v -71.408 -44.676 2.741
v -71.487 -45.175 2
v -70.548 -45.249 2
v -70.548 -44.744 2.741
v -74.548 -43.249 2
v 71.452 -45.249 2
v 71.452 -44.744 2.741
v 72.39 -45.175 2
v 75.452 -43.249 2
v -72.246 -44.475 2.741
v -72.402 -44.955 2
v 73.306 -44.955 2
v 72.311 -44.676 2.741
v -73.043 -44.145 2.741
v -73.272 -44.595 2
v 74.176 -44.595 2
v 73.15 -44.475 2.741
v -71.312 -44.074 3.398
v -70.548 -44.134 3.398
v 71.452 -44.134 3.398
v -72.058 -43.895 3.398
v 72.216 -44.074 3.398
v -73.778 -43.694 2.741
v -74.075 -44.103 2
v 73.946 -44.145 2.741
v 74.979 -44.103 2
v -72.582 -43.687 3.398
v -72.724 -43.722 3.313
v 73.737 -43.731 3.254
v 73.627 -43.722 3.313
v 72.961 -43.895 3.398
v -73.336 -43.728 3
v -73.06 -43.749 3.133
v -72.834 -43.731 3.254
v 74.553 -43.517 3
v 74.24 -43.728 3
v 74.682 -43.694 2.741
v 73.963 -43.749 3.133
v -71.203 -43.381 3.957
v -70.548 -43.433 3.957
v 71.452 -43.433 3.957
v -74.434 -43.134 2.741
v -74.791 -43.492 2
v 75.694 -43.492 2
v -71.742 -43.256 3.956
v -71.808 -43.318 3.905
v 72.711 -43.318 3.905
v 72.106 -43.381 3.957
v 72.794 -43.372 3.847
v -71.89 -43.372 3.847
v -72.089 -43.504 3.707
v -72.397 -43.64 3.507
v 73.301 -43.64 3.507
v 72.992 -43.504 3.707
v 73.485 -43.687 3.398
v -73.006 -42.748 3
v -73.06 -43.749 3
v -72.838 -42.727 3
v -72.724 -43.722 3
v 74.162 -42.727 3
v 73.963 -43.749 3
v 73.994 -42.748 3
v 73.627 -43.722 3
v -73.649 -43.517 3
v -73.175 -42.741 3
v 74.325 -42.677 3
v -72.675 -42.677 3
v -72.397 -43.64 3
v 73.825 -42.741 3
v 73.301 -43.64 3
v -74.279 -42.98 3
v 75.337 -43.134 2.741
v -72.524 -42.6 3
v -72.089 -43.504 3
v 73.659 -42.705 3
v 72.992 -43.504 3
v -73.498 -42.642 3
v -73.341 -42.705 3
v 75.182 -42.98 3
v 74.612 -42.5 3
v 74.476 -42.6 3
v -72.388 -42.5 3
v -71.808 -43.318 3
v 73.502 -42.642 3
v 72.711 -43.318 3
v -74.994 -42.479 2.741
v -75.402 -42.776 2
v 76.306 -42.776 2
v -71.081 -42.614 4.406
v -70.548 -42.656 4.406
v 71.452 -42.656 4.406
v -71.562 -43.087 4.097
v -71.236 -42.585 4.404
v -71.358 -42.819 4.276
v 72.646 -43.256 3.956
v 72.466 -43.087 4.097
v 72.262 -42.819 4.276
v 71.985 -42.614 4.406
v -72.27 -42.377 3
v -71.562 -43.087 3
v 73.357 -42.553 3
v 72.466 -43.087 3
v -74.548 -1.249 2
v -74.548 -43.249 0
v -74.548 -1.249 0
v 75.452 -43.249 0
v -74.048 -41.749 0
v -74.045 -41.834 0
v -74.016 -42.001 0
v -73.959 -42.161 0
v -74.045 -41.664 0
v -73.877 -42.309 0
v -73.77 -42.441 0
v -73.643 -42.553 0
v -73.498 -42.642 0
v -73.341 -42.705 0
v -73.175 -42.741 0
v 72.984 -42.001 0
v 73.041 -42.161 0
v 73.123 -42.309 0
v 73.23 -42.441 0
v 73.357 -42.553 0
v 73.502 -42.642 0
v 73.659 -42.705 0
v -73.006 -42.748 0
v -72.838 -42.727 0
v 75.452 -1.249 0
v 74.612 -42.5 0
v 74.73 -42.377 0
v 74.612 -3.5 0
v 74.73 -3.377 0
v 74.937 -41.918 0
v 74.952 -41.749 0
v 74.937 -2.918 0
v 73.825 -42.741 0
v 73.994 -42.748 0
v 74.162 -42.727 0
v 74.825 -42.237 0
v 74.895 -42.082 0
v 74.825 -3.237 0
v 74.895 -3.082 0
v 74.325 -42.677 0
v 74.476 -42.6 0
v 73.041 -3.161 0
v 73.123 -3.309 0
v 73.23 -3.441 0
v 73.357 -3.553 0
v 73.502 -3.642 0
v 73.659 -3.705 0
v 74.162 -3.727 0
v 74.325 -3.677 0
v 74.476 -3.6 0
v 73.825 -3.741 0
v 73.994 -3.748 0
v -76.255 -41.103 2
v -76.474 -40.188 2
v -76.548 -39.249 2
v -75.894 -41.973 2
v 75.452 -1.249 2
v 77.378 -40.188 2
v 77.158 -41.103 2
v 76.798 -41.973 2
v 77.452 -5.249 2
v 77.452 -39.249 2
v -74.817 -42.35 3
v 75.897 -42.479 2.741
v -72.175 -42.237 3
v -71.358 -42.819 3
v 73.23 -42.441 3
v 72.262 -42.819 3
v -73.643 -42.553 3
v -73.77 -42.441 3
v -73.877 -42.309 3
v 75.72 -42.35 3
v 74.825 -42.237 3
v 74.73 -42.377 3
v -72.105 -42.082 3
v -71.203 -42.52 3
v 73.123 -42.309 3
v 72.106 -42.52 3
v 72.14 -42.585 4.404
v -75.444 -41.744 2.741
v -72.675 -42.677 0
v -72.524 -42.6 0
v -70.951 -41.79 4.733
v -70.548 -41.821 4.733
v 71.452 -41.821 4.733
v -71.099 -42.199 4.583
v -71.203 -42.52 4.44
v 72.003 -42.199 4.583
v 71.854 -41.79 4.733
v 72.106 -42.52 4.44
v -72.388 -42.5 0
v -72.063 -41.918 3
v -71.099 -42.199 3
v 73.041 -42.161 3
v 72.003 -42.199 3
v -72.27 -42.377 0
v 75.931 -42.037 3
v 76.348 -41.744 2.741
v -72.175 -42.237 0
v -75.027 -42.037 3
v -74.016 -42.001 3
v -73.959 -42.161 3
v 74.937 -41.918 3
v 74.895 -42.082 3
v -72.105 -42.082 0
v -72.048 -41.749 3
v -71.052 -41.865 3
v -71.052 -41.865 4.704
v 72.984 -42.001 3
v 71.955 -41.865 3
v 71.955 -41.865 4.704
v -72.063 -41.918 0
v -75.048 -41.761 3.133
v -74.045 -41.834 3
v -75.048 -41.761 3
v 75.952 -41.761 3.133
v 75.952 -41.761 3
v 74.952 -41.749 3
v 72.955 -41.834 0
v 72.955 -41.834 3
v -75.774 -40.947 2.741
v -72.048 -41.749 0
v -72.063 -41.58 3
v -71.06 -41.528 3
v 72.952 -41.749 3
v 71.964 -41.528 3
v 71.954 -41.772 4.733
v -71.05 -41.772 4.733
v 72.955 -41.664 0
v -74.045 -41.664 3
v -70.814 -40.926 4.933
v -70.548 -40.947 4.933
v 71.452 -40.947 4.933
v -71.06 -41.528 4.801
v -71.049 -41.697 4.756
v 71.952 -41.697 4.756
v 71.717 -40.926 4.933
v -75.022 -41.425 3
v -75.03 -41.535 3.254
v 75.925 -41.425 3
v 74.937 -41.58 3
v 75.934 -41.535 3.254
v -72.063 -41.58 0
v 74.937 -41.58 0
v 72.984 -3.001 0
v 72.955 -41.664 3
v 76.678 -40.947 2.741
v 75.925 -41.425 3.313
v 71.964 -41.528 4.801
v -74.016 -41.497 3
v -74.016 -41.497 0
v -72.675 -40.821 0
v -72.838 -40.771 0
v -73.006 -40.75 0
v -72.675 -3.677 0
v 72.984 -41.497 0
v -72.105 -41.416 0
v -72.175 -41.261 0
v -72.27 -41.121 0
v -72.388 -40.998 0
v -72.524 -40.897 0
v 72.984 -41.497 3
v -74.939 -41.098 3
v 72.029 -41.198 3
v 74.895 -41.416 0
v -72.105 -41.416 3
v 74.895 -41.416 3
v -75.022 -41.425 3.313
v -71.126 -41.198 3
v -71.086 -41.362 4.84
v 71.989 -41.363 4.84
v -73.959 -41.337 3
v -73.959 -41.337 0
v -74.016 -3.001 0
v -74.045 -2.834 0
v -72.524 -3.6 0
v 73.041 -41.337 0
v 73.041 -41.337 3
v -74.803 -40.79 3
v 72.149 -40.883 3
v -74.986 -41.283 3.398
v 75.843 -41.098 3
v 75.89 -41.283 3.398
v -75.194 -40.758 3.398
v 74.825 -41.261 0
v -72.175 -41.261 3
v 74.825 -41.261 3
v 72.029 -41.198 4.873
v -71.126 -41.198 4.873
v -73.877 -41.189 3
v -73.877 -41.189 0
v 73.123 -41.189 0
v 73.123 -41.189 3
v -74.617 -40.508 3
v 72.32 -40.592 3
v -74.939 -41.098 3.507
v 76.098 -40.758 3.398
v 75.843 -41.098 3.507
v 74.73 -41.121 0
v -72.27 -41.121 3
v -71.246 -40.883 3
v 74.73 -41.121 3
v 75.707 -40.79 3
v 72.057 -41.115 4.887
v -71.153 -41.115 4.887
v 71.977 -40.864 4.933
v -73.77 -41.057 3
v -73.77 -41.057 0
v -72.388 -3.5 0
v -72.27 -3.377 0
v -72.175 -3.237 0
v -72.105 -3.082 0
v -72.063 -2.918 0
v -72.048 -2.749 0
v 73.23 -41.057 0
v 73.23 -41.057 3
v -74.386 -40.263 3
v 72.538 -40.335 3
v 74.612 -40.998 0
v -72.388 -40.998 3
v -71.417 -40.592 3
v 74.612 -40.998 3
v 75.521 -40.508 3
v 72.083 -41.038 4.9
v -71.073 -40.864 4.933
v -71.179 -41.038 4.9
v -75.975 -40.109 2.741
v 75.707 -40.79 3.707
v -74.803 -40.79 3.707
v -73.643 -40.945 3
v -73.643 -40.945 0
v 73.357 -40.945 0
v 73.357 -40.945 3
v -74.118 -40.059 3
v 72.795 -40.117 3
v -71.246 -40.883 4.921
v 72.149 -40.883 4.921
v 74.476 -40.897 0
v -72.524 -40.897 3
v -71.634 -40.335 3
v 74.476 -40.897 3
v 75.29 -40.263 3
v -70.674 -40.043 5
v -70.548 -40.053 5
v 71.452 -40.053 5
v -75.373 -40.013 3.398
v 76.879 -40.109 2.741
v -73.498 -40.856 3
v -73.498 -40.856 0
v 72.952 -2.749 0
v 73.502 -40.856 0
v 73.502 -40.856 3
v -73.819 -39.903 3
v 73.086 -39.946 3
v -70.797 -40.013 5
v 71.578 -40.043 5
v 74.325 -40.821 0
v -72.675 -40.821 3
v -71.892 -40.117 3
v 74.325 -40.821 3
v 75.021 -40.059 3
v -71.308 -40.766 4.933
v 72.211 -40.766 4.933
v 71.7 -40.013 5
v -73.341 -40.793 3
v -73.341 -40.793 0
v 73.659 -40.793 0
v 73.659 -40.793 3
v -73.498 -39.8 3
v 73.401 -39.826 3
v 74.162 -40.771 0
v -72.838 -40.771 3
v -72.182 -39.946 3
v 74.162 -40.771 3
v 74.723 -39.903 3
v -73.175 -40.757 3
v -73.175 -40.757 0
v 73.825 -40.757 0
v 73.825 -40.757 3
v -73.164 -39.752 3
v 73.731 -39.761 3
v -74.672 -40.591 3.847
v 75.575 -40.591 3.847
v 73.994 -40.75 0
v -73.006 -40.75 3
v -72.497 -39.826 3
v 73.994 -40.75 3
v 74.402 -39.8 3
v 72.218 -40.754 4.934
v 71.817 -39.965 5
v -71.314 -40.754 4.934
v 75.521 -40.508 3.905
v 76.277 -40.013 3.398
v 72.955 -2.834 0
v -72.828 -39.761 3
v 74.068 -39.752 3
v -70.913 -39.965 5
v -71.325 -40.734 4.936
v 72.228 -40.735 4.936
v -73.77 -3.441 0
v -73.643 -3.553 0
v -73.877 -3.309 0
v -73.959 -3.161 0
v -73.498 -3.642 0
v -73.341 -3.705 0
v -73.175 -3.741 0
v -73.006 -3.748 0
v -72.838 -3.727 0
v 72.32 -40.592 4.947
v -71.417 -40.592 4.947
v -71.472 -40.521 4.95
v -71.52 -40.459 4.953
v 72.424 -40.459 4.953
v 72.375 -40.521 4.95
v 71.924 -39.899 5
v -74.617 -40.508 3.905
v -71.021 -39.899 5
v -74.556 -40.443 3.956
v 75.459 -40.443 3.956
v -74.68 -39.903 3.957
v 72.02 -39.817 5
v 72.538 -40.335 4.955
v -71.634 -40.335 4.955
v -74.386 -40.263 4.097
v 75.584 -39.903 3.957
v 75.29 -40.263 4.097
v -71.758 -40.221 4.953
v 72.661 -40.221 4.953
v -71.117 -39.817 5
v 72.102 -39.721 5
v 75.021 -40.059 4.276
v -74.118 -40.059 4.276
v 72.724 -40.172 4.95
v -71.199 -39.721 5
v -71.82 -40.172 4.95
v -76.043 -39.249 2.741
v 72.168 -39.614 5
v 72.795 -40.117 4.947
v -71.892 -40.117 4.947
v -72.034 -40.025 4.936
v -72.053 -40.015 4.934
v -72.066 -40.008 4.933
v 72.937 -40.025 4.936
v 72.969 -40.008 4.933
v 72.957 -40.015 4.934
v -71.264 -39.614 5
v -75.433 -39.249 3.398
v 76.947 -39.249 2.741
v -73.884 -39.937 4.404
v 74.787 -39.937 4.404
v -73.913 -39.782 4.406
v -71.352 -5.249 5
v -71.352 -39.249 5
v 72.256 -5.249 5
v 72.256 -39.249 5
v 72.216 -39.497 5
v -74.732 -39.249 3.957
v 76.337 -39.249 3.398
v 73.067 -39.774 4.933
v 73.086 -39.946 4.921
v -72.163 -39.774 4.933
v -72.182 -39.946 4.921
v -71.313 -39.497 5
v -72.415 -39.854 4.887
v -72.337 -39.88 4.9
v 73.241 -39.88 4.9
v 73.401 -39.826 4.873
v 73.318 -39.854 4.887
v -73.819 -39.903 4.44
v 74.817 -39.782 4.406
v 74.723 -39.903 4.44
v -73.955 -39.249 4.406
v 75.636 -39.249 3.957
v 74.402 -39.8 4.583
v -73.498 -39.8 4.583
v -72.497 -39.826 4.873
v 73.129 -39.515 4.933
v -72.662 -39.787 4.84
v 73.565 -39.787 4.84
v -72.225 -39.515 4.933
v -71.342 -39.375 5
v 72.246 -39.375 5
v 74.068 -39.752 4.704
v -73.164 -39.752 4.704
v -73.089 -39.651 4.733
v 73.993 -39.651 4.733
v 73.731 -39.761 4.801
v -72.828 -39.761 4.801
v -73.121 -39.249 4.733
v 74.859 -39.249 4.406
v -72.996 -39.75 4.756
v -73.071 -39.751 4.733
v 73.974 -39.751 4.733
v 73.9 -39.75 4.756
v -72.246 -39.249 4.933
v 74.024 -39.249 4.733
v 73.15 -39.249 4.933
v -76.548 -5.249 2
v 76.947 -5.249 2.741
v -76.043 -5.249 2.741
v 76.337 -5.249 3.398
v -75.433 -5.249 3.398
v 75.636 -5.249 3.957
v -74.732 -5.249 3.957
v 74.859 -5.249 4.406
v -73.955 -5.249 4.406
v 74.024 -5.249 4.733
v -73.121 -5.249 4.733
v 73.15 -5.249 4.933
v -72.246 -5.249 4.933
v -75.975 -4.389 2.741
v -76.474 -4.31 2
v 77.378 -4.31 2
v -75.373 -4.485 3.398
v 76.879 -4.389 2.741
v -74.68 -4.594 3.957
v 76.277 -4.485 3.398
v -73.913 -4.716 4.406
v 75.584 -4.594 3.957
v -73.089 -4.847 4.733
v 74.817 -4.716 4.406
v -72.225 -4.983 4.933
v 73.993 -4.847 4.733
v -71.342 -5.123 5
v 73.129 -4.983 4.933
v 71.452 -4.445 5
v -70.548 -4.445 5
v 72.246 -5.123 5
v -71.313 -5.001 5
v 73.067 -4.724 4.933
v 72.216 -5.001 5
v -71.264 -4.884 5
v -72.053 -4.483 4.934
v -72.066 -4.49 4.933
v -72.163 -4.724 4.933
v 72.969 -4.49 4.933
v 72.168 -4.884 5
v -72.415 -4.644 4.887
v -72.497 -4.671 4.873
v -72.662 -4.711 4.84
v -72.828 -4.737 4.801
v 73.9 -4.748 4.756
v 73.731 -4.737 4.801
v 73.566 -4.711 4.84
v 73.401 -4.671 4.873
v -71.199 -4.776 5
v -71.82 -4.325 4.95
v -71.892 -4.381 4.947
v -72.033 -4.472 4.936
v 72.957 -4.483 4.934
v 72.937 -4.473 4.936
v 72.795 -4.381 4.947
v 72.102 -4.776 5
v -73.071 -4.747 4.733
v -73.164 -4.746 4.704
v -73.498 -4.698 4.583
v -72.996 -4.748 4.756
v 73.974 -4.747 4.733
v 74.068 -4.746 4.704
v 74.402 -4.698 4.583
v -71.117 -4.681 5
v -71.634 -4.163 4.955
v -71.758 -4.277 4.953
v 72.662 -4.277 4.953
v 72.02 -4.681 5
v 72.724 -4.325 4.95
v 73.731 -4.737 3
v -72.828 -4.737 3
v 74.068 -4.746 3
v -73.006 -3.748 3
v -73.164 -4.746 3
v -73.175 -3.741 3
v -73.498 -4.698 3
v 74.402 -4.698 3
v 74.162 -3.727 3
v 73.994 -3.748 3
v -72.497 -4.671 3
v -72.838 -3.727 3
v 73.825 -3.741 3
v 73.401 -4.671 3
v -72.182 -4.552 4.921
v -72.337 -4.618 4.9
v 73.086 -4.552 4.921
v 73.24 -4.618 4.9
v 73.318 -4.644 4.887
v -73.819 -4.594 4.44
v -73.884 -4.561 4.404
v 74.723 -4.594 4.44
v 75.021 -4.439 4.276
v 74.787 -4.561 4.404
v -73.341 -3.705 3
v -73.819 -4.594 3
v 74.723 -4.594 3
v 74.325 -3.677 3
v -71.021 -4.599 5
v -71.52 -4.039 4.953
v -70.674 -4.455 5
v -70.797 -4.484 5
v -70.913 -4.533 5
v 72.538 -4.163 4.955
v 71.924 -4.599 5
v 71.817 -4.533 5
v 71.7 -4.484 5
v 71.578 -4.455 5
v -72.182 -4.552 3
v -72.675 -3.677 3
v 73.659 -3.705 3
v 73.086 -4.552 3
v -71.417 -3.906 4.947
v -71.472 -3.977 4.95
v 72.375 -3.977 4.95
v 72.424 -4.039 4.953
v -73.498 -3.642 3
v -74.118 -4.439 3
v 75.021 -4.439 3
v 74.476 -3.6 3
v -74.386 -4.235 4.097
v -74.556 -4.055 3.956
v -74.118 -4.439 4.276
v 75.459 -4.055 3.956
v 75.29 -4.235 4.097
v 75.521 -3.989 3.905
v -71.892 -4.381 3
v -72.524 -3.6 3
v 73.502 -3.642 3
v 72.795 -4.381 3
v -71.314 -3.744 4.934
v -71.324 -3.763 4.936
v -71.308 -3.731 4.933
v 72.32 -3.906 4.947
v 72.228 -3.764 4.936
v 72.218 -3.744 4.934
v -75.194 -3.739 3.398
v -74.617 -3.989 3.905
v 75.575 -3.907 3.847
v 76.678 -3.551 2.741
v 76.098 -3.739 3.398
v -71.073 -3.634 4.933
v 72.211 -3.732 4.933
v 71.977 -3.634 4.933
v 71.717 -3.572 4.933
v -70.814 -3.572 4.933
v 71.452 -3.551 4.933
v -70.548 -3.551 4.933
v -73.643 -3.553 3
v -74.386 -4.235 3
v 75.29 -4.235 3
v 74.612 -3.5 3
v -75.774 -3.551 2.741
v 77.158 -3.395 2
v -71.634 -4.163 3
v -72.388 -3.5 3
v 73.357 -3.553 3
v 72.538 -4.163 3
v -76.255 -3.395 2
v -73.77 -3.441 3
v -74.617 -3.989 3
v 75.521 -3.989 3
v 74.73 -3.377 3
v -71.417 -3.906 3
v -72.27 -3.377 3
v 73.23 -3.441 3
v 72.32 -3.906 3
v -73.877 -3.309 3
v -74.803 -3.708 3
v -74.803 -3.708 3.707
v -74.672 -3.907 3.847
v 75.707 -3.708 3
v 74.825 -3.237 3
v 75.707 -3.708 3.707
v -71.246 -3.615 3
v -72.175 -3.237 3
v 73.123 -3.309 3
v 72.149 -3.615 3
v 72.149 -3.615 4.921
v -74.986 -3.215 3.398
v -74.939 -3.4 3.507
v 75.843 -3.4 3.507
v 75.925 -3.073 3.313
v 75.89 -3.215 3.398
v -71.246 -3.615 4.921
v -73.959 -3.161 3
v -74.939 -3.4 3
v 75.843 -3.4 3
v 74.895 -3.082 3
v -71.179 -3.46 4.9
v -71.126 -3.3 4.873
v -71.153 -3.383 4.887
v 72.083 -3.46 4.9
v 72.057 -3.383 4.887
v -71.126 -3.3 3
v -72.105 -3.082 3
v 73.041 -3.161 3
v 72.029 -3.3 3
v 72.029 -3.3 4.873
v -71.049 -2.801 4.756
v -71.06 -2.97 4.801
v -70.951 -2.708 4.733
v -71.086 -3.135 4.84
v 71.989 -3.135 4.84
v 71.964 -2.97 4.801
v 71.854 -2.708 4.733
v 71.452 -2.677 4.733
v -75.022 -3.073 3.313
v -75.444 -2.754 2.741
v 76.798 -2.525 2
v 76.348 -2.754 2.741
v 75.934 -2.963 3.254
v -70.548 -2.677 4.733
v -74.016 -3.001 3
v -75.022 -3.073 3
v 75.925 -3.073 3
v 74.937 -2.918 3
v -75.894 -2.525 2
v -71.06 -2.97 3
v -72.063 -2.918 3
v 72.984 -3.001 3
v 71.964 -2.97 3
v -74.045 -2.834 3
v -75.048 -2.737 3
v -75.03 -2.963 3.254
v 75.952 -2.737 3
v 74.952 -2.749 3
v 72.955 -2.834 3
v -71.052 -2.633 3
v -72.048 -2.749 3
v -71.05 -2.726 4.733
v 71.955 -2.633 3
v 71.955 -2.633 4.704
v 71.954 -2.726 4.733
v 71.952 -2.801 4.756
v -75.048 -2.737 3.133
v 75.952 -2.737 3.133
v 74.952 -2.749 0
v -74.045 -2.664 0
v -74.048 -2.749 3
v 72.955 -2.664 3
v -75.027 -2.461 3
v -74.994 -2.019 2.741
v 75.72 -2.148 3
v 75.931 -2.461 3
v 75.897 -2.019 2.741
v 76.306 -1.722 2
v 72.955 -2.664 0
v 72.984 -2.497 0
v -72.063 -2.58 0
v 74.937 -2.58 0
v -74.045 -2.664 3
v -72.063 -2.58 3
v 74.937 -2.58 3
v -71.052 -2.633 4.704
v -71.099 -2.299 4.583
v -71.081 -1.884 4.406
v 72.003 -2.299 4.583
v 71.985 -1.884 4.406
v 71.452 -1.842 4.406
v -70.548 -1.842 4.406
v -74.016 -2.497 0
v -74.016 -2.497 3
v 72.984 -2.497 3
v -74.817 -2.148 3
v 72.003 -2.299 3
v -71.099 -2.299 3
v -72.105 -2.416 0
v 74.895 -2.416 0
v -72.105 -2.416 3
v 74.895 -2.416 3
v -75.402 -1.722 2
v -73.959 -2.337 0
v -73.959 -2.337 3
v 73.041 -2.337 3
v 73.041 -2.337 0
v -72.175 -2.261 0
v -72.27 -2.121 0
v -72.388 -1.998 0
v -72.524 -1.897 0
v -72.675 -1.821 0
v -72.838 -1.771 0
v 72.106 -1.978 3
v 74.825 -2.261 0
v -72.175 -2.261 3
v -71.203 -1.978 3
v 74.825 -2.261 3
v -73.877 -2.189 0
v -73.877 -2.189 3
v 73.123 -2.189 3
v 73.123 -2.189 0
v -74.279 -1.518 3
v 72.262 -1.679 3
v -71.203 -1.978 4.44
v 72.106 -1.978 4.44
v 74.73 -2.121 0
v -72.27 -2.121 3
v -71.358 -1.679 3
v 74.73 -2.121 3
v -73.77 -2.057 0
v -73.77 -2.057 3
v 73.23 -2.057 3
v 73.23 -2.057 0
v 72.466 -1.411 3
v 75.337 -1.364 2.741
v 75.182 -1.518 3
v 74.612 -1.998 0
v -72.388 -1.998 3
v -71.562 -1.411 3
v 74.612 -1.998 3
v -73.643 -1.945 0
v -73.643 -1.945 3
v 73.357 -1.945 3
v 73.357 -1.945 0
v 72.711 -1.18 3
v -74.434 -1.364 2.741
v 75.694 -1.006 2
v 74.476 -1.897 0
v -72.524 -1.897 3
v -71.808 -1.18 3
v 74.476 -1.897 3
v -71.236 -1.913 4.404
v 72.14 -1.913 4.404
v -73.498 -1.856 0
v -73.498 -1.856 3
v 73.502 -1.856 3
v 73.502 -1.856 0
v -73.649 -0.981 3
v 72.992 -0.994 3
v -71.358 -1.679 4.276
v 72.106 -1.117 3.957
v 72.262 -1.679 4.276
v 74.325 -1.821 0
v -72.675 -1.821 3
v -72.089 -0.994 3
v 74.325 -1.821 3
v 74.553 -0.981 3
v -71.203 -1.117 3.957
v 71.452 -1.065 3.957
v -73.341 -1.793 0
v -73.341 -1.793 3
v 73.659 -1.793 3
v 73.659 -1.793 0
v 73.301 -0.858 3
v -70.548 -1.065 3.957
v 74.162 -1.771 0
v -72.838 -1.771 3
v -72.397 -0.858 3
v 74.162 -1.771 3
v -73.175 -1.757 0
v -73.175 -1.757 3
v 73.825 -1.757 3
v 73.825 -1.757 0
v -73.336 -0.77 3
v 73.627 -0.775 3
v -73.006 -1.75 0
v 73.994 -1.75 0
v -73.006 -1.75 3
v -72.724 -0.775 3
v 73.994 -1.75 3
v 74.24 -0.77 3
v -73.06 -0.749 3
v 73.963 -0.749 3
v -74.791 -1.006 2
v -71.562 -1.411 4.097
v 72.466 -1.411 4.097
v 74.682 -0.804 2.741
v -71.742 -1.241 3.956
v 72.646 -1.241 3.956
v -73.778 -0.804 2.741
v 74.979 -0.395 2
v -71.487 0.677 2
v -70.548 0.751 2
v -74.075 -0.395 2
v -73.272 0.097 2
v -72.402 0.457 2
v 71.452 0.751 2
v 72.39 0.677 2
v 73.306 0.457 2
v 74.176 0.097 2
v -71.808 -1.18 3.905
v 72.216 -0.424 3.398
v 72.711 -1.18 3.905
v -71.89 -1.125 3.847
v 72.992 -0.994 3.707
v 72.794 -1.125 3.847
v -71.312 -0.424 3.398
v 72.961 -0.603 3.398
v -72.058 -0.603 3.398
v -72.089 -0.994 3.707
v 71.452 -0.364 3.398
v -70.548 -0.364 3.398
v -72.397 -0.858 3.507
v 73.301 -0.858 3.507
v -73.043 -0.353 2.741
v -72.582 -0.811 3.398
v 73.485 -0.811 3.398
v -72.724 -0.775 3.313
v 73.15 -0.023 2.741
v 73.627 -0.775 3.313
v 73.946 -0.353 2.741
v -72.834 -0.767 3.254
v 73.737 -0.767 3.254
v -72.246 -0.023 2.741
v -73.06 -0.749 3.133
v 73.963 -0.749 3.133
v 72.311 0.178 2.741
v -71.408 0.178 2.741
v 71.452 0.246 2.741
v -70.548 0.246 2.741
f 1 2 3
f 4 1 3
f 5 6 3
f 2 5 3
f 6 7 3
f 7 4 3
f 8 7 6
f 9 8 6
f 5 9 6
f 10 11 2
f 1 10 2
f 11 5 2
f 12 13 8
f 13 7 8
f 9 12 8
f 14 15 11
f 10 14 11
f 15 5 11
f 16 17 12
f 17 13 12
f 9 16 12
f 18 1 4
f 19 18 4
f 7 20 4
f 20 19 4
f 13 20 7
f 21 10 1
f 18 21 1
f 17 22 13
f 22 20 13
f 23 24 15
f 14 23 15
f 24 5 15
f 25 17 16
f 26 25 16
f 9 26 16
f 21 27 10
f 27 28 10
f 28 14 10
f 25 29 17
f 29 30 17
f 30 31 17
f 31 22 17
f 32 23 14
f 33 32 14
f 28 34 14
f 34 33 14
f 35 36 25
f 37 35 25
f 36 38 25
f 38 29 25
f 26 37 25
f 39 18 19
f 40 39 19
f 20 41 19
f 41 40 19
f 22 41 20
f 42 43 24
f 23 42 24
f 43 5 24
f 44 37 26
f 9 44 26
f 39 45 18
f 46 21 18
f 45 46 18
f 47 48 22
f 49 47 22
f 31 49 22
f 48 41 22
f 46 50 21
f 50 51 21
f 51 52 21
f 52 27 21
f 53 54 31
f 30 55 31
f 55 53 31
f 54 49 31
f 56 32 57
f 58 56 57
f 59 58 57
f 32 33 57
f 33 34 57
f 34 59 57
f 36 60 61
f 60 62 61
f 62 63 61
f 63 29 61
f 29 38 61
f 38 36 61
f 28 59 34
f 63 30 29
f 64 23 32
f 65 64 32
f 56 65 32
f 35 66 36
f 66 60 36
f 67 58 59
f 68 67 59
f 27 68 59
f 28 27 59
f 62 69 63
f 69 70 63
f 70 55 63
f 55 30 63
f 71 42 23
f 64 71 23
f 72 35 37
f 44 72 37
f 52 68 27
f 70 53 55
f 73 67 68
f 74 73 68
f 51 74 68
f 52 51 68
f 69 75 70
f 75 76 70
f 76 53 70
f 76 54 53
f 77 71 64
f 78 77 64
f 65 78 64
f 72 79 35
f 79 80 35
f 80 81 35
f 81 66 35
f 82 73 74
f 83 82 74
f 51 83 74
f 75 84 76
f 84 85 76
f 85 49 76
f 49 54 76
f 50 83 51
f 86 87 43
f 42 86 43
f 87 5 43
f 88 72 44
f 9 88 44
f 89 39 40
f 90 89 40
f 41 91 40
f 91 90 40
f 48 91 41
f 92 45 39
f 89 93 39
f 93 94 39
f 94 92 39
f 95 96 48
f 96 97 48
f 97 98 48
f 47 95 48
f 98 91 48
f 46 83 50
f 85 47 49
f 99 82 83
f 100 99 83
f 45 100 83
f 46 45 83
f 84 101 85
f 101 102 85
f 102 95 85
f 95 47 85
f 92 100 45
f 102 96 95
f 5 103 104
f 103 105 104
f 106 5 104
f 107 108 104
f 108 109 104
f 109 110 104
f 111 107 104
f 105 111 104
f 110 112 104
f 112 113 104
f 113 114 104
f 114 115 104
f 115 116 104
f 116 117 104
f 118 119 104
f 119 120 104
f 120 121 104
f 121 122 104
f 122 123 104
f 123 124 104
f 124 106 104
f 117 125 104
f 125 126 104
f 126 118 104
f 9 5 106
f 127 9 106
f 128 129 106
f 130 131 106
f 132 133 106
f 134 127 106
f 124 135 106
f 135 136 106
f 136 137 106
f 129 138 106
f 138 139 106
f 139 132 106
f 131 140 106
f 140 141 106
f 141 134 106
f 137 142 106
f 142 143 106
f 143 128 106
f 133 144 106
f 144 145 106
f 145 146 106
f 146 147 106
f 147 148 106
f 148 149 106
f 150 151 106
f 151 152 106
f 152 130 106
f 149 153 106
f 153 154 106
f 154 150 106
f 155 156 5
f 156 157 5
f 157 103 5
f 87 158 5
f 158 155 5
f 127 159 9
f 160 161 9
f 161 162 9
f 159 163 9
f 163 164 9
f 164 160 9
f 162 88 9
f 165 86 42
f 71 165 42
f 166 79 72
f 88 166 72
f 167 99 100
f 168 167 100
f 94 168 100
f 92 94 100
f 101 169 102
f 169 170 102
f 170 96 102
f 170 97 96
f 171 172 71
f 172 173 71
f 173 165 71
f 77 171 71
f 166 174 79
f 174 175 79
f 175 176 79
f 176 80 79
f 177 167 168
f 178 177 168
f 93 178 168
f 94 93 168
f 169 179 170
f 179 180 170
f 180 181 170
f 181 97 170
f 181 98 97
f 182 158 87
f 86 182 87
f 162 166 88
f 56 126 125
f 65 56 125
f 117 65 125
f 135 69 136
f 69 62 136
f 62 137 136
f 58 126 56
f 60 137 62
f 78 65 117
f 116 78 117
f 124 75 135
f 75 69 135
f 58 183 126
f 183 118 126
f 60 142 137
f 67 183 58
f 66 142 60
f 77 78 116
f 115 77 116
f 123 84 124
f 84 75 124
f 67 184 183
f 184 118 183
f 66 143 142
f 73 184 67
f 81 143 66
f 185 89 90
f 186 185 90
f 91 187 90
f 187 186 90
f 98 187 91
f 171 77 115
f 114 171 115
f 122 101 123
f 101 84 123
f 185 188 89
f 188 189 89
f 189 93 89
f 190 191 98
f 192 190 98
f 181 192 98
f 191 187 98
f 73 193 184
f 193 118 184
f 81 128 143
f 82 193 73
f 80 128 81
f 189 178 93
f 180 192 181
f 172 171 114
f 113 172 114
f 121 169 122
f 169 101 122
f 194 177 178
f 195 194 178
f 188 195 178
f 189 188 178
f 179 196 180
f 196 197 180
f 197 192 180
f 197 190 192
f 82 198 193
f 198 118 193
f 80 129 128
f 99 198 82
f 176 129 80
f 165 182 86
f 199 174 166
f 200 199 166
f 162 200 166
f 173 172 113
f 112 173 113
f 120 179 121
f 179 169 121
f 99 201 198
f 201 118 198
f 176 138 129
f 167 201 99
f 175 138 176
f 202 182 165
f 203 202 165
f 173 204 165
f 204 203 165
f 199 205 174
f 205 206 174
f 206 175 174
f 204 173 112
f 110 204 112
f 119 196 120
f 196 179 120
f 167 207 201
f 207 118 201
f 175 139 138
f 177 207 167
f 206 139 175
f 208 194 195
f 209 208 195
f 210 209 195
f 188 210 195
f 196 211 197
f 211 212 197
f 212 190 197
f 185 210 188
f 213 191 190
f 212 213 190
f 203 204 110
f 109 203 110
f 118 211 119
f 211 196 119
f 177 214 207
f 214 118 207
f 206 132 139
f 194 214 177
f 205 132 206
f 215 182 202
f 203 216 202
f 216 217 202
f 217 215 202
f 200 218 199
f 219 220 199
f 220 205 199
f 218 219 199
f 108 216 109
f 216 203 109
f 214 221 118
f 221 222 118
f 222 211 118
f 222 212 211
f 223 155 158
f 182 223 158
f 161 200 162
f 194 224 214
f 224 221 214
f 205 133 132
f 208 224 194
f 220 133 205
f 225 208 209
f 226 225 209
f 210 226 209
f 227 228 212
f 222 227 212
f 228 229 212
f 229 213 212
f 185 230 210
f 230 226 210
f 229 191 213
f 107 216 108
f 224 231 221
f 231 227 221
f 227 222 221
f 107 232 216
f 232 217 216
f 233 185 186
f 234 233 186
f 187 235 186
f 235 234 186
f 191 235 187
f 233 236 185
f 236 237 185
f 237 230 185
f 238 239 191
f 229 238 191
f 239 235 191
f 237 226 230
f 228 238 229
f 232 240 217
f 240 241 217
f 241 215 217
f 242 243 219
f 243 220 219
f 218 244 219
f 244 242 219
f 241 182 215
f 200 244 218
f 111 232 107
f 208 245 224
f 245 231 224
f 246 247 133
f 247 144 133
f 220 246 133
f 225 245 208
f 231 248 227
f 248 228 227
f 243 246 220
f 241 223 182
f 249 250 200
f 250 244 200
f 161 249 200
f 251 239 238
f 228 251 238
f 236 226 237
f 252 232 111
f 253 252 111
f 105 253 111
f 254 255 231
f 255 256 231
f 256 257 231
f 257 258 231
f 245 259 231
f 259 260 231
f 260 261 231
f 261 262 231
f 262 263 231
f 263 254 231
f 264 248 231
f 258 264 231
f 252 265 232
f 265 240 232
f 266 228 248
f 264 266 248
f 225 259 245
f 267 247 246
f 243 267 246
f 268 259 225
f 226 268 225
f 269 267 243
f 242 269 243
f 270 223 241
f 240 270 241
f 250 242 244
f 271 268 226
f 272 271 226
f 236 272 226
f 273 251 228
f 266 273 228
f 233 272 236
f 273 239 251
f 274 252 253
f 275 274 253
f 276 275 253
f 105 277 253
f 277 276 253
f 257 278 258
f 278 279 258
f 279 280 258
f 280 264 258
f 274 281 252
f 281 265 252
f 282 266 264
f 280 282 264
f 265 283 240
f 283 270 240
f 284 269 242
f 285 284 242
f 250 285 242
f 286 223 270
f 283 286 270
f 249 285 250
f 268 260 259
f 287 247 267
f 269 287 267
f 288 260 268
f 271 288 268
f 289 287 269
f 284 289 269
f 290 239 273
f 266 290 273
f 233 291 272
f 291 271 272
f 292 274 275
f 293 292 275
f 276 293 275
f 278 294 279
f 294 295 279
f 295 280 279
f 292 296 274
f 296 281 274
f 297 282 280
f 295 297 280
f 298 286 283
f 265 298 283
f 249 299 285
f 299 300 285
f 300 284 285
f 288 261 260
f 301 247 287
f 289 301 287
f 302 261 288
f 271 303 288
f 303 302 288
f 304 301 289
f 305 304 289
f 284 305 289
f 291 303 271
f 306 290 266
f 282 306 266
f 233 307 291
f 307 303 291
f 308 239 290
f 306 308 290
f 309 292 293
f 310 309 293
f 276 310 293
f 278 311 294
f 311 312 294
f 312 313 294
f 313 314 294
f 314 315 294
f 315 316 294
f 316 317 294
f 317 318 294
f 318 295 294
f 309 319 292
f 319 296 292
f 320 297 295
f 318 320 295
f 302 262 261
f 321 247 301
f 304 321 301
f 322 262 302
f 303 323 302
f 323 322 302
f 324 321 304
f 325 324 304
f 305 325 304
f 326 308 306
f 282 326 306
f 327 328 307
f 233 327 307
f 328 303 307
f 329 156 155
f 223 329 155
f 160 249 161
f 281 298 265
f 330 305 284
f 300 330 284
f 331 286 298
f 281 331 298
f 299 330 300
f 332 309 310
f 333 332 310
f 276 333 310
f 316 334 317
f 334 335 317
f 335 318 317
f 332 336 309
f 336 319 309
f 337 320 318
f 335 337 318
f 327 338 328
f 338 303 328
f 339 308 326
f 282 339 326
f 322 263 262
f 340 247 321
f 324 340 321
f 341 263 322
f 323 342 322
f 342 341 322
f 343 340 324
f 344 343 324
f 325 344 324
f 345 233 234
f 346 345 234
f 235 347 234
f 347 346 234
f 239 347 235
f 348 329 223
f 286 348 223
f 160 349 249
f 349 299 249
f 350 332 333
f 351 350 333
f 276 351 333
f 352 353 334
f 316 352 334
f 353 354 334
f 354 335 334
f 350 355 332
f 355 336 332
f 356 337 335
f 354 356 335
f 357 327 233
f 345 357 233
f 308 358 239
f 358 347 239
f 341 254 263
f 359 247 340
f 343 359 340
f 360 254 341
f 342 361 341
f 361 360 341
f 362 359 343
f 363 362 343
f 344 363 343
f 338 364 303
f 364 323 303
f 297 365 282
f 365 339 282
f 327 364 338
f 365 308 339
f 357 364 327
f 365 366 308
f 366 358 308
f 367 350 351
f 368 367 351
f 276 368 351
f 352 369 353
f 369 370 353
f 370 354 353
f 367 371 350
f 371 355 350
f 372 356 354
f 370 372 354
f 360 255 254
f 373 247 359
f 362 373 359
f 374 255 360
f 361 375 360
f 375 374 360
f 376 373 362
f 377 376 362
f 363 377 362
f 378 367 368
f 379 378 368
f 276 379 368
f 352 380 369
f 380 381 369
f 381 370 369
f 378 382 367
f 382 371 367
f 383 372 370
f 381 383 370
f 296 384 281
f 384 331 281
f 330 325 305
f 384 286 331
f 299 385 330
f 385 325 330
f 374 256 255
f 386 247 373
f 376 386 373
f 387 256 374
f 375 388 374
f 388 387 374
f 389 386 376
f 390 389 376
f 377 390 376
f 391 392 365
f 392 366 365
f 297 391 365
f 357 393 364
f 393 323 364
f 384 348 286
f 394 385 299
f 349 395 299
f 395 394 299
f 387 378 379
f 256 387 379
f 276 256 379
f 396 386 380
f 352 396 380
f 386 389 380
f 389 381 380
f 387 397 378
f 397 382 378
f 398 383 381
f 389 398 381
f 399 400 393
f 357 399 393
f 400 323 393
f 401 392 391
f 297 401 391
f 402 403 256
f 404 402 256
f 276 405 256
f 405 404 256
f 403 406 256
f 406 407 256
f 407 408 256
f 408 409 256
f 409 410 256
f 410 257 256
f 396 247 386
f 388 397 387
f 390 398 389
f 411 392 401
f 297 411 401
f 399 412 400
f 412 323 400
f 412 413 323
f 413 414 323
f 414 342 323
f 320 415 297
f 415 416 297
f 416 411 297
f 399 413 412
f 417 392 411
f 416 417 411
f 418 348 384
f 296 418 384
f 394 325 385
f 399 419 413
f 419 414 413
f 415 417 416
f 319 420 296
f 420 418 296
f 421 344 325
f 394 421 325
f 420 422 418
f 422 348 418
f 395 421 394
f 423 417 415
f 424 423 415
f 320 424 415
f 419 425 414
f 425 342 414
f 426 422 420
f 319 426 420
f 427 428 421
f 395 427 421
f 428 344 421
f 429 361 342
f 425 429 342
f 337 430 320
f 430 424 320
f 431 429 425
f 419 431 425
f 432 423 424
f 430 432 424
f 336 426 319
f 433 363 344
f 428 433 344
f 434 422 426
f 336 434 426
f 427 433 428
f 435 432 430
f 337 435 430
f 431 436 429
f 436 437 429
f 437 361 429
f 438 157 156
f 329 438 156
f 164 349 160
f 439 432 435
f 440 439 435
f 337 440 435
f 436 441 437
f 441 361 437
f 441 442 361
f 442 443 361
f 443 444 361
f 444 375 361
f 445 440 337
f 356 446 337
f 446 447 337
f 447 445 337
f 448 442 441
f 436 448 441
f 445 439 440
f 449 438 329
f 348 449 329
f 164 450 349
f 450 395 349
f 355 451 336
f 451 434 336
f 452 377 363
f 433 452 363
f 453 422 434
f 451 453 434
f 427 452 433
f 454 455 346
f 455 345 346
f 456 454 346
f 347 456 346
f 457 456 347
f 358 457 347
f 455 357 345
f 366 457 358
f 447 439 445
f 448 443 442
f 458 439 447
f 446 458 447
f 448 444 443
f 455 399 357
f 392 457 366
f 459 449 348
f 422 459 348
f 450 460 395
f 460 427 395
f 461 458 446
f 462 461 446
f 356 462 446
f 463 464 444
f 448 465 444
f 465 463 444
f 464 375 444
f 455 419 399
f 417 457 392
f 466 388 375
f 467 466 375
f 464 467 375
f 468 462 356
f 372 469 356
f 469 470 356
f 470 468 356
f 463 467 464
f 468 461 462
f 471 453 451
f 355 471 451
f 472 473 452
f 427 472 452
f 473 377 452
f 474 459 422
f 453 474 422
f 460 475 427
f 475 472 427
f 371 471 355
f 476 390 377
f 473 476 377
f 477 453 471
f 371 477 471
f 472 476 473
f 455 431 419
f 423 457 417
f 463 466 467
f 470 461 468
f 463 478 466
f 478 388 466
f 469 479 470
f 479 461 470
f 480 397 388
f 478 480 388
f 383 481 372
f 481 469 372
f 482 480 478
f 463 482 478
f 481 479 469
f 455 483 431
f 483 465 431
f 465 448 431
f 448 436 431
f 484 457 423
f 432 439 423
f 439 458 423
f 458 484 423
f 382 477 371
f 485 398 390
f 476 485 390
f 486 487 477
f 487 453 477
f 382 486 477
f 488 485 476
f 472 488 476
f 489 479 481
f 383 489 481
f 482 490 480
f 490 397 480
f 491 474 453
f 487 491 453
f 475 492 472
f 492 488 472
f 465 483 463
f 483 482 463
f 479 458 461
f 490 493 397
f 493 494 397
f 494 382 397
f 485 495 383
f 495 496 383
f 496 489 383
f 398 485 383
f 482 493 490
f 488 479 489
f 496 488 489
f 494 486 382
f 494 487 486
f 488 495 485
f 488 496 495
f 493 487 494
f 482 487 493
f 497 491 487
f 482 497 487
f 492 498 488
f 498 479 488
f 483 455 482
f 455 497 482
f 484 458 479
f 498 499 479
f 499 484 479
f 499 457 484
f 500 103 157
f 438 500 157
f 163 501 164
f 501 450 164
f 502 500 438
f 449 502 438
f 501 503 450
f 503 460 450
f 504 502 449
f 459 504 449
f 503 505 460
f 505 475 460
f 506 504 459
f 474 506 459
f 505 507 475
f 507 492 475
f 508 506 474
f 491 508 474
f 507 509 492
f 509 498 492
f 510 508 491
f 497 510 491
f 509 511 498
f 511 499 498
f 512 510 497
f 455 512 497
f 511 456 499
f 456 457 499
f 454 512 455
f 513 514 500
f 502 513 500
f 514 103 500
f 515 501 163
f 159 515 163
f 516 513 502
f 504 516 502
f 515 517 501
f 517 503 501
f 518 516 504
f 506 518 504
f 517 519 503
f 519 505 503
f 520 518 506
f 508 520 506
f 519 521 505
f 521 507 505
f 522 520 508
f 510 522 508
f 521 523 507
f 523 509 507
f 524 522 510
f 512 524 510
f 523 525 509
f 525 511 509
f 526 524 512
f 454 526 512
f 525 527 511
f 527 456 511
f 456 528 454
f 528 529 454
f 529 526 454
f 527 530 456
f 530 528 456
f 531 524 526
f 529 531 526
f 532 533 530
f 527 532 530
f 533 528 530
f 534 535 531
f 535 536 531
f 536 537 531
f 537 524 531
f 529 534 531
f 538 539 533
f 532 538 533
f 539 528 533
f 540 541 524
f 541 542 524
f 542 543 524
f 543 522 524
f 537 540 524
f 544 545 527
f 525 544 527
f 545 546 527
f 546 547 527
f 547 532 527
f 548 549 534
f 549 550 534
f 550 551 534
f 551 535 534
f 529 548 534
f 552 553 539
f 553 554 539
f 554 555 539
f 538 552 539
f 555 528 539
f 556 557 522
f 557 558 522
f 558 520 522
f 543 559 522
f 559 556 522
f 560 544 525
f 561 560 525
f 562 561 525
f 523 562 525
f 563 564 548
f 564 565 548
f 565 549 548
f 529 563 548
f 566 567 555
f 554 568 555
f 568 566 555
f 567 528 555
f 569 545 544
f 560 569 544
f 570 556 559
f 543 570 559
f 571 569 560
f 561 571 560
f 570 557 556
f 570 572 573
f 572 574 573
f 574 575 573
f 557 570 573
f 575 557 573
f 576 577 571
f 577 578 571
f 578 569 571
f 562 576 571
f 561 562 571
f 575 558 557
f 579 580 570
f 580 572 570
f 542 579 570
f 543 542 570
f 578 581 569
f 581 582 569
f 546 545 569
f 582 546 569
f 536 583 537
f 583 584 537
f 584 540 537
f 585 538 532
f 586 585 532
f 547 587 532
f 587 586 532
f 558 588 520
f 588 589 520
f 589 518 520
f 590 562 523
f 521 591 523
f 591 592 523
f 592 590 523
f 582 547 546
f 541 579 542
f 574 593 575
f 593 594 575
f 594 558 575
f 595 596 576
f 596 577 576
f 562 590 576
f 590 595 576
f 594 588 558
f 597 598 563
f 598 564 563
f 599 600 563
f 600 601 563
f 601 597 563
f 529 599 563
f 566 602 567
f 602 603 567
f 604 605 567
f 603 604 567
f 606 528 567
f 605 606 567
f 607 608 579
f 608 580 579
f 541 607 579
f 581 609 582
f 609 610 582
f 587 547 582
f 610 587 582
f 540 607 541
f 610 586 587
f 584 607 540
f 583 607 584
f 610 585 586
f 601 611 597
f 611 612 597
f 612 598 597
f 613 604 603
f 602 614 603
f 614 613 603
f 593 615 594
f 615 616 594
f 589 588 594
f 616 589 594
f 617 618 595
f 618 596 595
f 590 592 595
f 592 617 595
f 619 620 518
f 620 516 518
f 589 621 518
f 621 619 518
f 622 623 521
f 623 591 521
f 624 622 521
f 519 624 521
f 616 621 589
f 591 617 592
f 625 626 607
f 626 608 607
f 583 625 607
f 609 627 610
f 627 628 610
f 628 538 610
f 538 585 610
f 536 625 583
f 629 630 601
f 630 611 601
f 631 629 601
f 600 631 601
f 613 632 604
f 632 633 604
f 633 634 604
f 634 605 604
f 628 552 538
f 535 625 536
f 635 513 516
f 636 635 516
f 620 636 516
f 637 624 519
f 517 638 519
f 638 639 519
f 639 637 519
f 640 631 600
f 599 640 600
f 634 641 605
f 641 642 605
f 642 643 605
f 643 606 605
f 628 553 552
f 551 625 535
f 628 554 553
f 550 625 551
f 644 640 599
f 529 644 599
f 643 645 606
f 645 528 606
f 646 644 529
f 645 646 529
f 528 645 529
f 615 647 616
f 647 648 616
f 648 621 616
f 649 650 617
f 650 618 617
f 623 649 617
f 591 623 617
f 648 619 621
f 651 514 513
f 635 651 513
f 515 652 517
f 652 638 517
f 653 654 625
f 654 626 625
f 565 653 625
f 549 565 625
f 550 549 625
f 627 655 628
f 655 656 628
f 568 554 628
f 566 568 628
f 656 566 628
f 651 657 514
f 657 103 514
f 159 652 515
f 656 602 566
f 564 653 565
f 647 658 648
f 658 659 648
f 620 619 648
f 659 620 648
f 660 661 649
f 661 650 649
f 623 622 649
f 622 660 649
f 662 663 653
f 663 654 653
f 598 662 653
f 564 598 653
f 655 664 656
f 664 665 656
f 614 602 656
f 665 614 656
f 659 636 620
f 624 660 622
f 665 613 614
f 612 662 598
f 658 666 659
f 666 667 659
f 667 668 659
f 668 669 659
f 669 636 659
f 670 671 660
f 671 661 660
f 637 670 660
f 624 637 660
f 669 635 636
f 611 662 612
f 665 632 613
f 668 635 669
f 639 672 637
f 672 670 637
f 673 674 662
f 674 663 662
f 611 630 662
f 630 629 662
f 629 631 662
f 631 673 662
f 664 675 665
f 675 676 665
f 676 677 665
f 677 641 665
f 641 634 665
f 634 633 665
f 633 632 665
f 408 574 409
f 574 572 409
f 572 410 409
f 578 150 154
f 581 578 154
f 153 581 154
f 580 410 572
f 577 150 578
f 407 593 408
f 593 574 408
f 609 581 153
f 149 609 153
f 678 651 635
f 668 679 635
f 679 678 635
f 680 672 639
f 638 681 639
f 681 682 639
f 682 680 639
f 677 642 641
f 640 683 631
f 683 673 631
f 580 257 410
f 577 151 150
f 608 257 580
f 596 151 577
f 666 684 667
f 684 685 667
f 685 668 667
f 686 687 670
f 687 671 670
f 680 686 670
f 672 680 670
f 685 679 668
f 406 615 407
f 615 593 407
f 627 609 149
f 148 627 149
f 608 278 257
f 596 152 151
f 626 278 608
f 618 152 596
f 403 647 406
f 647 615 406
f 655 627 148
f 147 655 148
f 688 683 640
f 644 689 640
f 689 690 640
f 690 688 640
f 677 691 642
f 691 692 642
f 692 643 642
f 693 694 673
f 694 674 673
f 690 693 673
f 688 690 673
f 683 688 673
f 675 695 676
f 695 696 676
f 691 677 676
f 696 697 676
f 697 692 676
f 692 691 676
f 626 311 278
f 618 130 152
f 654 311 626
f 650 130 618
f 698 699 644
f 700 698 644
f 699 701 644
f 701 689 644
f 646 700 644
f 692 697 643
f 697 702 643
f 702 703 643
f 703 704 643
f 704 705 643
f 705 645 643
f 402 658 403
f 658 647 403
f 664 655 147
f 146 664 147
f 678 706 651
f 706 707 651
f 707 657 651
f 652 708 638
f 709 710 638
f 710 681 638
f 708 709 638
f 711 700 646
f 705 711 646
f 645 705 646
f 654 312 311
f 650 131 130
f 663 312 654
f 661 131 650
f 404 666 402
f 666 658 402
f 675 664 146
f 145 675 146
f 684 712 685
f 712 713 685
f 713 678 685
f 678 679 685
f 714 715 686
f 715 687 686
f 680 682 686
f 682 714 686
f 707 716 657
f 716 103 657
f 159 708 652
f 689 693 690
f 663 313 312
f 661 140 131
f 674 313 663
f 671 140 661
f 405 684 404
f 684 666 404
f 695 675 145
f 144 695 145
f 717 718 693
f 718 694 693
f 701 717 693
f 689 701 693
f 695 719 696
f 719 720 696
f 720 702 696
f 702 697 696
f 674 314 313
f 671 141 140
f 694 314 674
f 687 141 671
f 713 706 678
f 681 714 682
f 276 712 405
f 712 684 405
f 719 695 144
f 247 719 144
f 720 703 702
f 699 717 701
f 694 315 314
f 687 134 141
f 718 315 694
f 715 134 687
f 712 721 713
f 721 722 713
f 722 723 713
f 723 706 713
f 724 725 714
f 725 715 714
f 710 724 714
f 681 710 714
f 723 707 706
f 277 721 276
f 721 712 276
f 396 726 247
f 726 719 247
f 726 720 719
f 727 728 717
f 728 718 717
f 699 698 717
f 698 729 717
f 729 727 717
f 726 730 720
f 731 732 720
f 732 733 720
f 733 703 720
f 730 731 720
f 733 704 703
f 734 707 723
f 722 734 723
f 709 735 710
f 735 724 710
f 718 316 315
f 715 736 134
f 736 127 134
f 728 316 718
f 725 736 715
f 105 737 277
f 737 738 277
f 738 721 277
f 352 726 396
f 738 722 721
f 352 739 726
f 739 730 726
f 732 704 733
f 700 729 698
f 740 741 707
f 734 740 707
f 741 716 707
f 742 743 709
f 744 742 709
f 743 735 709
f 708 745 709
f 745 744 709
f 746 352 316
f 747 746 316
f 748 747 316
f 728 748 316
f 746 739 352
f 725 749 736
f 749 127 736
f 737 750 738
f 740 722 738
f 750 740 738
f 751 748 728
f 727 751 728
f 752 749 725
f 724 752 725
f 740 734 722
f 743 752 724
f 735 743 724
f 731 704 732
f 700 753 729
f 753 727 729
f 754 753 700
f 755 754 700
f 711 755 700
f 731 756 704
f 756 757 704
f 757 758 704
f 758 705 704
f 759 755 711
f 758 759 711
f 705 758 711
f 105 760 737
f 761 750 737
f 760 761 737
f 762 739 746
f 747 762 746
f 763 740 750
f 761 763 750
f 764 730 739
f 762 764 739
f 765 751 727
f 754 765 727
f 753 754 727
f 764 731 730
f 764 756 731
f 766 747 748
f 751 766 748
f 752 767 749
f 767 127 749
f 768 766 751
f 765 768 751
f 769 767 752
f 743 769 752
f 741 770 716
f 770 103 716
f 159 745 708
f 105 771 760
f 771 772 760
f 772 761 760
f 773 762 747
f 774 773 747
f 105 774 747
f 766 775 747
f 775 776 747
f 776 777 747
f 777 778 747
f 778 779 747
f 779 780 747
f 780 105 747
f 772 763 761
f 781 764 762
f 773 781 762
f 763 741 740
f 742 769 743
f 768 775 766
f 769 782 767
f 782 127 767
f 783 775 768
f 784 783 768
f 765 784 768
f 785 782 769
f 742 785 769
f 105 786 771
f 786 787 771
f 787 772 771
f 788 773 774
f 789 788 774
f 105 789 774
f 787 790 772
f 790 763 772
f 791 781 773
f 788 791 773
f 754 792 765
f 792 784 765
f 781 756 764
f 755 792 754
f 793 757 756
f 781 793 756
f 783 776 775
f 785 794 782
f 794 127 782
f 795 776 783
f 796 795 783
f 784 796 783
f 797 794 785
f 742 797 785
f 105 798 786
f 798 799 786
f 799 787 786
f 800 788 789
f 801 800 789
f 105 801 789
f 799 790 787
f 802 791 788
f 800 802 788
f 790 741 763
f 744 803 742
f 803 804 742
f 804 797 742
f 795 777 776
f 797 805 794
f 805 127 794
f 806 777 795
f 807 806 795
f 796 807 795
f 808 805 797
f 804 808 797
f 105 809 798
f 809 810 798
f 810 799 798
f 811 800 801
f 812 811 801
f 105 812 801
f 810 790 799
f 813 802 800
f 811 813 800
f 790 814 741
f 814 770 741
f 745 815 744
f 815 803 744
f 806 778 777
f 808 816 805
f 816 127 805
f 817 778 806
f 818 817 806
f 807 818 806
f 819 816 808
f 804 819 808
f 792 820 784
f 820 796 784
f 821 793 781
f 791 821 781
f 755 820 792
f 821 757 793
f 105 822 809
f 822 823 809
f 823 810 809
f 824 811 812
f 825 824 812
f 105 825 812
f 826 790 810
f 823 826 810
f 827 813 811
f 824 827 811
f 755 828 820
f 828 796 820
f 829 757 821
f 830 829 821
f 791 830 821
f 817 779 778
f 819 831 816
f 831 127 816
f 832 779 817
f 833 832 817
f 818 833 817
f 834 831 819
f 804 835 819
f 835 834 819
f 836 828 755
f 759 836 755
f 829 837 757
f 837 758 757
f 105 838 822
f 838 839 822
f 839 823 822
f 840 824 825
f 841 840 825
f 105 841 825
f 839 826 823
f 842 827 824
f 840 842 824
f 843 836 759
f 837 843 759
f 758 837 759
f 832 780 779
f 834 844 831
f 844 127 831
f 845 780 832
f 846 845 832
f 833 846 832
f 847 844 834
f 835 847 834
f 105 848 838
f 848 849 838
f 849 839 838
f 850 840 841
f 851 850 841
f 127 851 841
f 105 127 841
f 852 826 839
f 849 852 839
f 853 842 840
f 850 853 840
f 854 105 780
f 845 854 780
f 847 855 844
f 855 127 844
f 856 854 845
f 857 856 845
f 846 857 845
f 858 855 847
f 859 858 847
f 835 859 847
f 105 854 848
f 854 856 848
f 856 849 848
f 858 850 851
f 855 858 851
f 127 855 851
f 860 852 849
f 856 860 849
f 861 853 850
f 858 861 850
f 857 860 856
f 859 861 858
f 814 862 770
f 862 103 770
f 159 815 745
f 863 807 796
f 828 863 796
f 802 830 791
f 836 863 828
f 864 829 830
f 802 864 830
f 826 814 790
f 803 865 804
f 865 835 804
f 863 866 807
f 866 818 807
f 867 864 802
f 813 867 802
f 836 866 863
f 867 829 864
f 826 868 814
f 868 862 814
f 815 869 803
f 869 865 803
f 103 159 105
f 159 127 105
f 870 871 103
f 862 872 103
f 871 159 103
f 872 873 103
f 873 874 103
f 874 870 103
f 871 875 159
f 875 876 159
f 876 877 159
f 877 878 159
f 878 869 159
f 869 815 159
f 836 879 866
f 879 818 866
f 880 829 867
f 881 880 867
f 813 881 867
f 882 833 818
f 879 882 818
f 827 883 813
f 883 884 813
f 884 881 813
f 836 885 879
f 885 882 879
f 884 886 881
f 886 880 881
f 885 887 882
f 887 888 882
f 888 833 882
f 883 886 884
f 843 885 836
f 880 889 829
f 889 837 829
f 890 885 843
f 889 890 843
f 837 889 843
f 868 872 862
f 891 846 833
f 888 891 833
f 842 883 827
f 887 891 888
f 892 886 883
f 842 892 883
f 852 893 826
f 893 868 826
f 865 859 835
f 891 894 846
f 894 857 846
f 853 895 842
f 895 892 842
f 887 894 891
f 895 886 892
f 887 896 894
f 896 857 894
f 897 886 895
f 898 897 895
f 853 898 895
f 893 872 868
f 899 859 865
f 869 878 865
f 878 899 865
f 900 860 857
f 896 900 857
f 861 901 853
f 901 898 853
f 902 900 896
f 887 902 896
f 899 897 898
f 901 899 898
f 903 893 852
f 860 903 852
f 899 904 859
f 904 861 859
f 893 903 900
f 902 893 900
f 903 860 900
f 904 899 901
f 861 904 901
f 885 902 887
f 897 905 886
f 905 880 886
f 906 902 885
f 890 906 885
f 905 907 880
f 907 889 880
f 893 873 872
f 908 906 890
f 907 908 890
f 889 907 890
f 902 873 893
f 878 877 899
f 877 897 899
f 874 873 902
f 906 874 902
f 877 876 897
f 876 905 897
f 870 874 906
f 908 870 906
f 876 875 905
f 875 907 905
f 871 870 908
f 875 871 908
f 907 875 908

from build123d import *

# Parameters (mm, degrees)
SKETCH_1_W          = 150
SKETCH_1_H          = 42
EXTRUDE_1_DEPTH     = 2
SKETCH_2_R          = 1
CUT_EXTRUDE_1_DEPTH = 2
SKETCH_3_W          = 154
SKETCH_3_H          = 46
EXTRUDE_2_DEPTH     = 3
FILLET_2_R          = 6
FILLET_3_R          = 6
CUT_EXTRUDE_START   = 2
SKETCH_2_2_R        = 1
CUT_EXTRUDE_2_DEPTH = 2
SKETCH_4_R          = 2
CUT_EXTRUDE_3_DEPTH = 2


with BuildPart() as part:
    # 草图1 → 凸台-拉伸1 (new body)
    with BuildSketch(Plane.XY):
        with Locations((0.451807229, -22.248953788)):
            Rectangle(SKETCH_1_W, SKETCH_1_H)
    extrude(amount=EXTRUDE_1_DEPTH)

    # 草图2 → 切除-拉伸1 (cut)
    with BuildSketch(Plane.XY.offset(2)):
        with Locations((73.951807229, -41.748953788)):
            Circle(SKETCH_2_R)
        with Locations(Location((73.951807229, -2.748953788, 0), (0, 0, 180))):
            Circle(SKETCH_2_R)
        with Locations(Location((-73.048192771, -41.748953788, 0), (0, 0, 180))):
            Circle(SKETCH_2_R)
        with Locations((-73.048192771, -2.748953788)):
            Circle(SKETCH_2_R)
    extrude(amount=-CUT_EXTRUDE_1_DEPTH, mode=Mode.SUBTRACT)

    # 草图3 → 凸台-拉伸2 (add)
    with BuildSketch(Plane.XY.offset(2)):
        with Locations((0.451807229, -22.248953788)):
            Rectangle(SKETCH_3_W, SKETCH_3_H)
    extrude(amount=EXTRUDE_2_DEPTH)

    # 圆角2
    fillet_2_edges = [part.edges().sort_by_distance(p)[0] for p in [
        (-76.548192771, 0.751046212, 3.5),
        (-76.548192771, -45.248953788, 3.5),
        (77.451807229, -45.248953788, 3.5),
        (77.451807229, 0.751046212, 3.5),
    ]]
    fillet(fillet_2_edges, radius=FILLET_2_R)

    # 圆角3
    # the kernel refuses this fillet: 6 mm, written as the material it takes off along each edge
    with BuildSketch(Plane(origin=(71.451807229, -5.248953788, 5), x_dir=(0, 1, 0), z_dir=(-1, 0, 0))) as fillet_3_piece_1:
        with BuildLine():
            CenterArc((0.803847577, 6), FILLET_3_R, 270, 60)
            Line((0.803847577, 0), (0.803847577, -0.12))
            Line((0.803847577, -0.12), (6, -0.12))
            Line((6, -0.12), (6.12, 0))
            ThreePointArc((6.12, 0), (6.12, 1.5), (6.103923048, 2.94))
            Line((6.103923048, 2.94), (6, 3))
        make_face()
    revolve(axis=Axis((71.451807229, -5.248953788, 5), (0, 0, -1)), revolution_arc=90, mode=Mode.SUBTRACT)
    with BuildSketch(Plane(origin=(77.451807229, -5.248953788, 5), x_dir=(-1, 0, 0), z_dir=(0, -1, 0)), Plane(origin=(-76.548192771, -39.248953788, 5), x_dir=(1, 0, 0), z_dir=(0, 1, 0))) as fillet_3_piece_2:
        with BuildLine():
            CenterArc((5.196152423, 6), FILLET_3_R, 210, 60)
            Line((0, 3), (-0.103923048, 2.94))
            ThreePointArc((-0.103923048, 2.94), (-0.12, 1.5), (-0.12, 0))
            Line((-0.12, 0), (0, -0.12))
            Line((0, -0.12), (5.196152423, -0.12))
            Line((5.196152423, -0.12), (5.196152423, 0))
        make_face()
    extrude(amount=34, mode=Mode.SUBTRACT)
    with BuildSketch(Plane(origin=(71.451807229, -39.248953788, 5), x_dir=(1, 0, 0), z_dir=(0, 1, 0))) as fillet_3_piece_3:
        with BuildLine():
            CenterArc((0.803847577, 6), FILLET_3_R, 270, 60)
            Line((6, 3), (6.103923048, 2.94))
            ThreePointArc((6.103923048, 2.94), (6.12, 1.5), (6.12, 0))
            Line((6.12, 0), (6, -0.12))
            Line((6, -0.12), (0.803847577, -0.12))
            Line((0.803847577, -0.12), (0.803847577, 0))
        make_face()
    revolve(axis=Axis((71.451807229, -39.248953788, 5), (0, 0, -1)), revolution_arc=90, mode=Mode.SUBTRACT)
    with BuildSketch(Plane(origin=(71.451807229, -45.248953788, 5), x_dir=(0, 1, 0), z_dir=(-1, 0, 0))) as fillet_3_piece_4:
        with BuildLine():
            CenterArc((5.196152423, 6), FILLET_3_R, 210, 60)
            Line((0, 3), (-0.103923048, 2.94))
            ThreePointArc((-0.103923048, 2.94), (-0.12, 1.5), (-0.12, 0))
            Line((-0.12, 0), (0, -0.12))
            Line((0, -0.12), (5.196152423, -0.12))
            Line((5.196152423, -0.12), (5.196152423, 0))
        make_face()
    extrude(amount=142, mode=Mode.SUBTRACT)
    with BuildSketch(Plane(origin=(-70.548192771, -39.248953788, 5), x_dir=(-1, 0, 0), z_dir=(0, 1, 0))) as fillet_3_piece_5:
        with BuildLine():
            CenterArc((0.803847577, -6), FILLET_3_R, 30, 60)
            Line((6, -3), (6.103923048, -2.94))
            ThreePointArc((6.103923048, -2.94), (6.12, -1.5), (6.12, 0))
            Line((6.12, 0), (6, 0.12))
            Line((6, 0.12), (0.803847577, 0.12))
            Line((0.803847577, 0.12), (0.803847577, 0))
        make_face()
    revolve(axis=Axis((-70.548192771, -39.248953788, 5), (0, 0, 1)), revolution_arc=90, mode=Mode.SUBTRACT)
    with BuildSketch(Plane(origin=(-70.548192771, -5.248953788, 5), x_dir=(0, 1, 0), z_dir=(1, 0, 0))) as fillet_3_piece_6:
        with BuildLine():
            CenterArc((0.803847577, -6), FILLET_3_R, 30, 60)
            Line((0.803847577, 0), (0.803847577, 0.12))
            Line((0.803847577, 0.12), (6, 0.12))
            Line((6, 0.12), (6.12, 0))
            ThreePointArc((6.12, 0), (6.12, -1.5), (6.103923048, -2.94))
            Line((6.103923048, -2.94), (6, -3))
        make_face()
    revolve(axis=Axis((-70.548192771, -5.248953788, 5), (0, 0, 1)), revolution_arc=90, mode=Mode.SUBTRACT)
    with BuildSketch(Plane(origin=(-70.548192771, 0.751046212, 5), x_dir=(0, 0, -1), z_dir=(1, 0, 0))) as fillet_3_piece_7:
        with BuildLine():
            CenterArc((6, -5.196152423), FILLET_3_R, 120, 60)
            Line((0, -5.196152423), (-0.12, -5.196152423))
            Line((-0.12, -5.196152423), (-0.12, 0))
            Line((-0.12, 0), (0, 0.12))
            ThreePointArc((0, 0.12), (1.5, 0.12), (2.94, 0.103923048))
            Line((2.94, 0.103923048), (3, 0))
        make_face()
    extrude(amount=142, mode=Mode.SUBTRACT)

    # 草图2<2> → 切除-拉伸2 (cut)
    with BuildSketch(Plane.XY.offset(2).offset(CUT_EXTRUDE_START)):
        with Locations((73.951807229, -41.748953788)):
            Circle(SKETCH_2_2_R)
        with Locations(Location((73.951807229, -2.748953788, 0), (0, 0, 344.465859099))):
            Circle(SKETCH_2_2_R)
        with Locations(Location((-73.048192771, -41.748953788, 0), (0, 0, 285.534141265))):
            Circle(SKETCH_2_2_R)
        with Locations((-73.048192771, -2.748953788)):
            Circle(SKETCH_2_2_R)
    extrude(amount=-CUT_EXTRUDE_2_DEPTH, mode=Mode.SUBTRACT)

    # 草图4 → 切除-拉伸3 (cut)
    with BuildSketch(Plane.XY.offset(5)):
        with Locations((73.951807229, -2.748953788)):
            Circle(SKETCH_4_R)
        with Locations((73.951807229, -41.748953788)):
            Circle(SKETCH_4_R)
        with Locations((-73.048192771, -41.748953788)):
            Circle(SKETCH_4_R)
        with Locations((-73.048192771, -2.748953788)):
            Circle(SKETCH_4_R)
    extrude(amount=-CUT_EXTRUDE_3_DEPTH, mode=Mode.SUBTRACT)


solid = part.part
